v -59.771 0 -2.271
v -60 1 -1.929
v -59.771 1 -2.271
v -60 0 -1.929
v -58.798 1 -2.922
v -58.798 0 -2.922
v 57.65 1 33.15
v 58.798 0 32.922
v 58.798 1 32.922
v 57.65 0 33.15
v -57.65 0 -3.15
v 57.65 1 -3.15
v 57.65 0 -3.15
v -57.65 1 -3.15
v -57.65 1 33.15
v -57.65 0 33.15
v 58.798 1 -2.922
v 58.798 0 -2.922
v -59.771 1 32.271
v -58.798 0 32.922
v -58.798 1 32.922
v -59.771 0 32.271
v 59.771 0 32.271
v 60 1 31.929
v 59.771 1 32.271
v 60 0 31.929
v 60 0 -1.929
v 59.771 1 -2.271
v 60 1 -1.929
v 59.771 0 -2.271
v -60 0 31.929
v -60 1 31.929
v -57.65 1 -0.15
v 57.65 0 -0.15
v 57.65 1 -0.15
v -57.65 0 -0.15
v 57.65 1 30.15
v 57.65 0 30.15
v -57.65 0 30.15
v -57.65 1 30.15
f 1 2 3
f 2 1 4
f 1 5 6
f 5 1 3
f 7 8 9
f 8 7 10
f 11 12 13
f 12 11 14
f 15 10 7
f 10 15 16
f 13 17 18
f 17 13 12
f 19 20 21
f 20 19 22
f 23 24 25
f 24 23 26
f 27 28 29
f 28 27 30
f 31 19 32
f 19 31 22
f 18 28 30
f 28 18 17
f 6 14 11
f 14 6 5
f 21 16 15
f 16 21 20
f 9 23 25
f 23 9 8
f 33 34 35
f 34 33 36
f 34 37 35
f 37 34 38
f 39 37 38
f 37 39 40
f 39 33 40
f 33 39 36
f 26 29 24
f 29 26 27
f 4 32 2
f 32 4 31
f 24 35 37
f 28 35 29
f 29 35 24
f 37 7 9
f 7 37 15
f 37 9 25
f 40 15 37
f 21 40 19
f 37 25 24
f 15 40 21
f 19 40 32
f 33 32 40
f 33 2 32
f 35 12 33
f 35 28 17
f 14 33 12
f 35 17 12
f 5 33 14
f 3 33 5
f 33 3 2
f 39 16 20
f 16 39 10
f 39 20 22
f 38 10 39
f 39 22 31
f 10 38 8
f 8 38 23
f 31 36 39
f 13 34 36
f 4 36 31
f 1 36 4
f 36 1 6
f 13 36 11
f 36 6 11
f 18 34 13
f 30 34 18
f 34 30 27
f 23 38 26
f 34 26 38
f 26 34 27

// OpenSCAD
// file: xt.scad
e=.001;
$fn=16;

xt60_w=15.7;
xt60_h=8;
xt60f_d = 15.7;
xt60f_base_d = 8;
xt60_combined_d=24.1;
xt60_pitch=7;
xt60_chamfer=2.5;
xt60f_pin_d=5.7;
xt60m_pin_d=4.7;
xt60_pin_w=4.5;
xt60_hole_w=4.5;
xt60_corner=.5;

module xt_pins(width, height, pitch)
{
	for (p=[-pitch/2, pitch/2])
	translate([p,0,0])
	cylinder(h=height, r=width/2);
}

module xt_base(w, h, d, chamfer, corner, margin=0, e=0)
{
	w = w-2*corner;
	h = h-2*corner;
	r = corner+margin;
	translate([0,0,-e])
    linear_extrude(d+2*e)
	hull()
    for (p=[ [w/2,-h/2],
	         [-w/2+chamfer, -h/2],
	         [-w/2, -h/2+chamfer],
	         [-w/2, h/2-chamfer],
	         [-w/2+chamfer, h/2],
	         [w/2, h/2]
	])
	translate(p)
	circle(r);
}

module xt60_combined_shell_cutout(margin=0,f_margin=-1,m_margin=-1, e=0)
{
	b=1; 
	xt_base(xt60_w, xt60_h, xt60_combined_d, xt60_chamfer, xt60_corner, margin, e);
	if (f_margin > margin)
	hull()
	{
		xt_base(xt60_w, xt60_h, xt60f_base_d, xt60_chamfer, xt60_corner, f_margin, e);
		translate([0,0,xt60f_base_d])
		xt_base(xt60_w, xt60_h, f_margin-margin, xt60_chamfer, xt60_corner, margin, e);
	}
	if (m_margin > margin)
	hull()
	{
		translate([0,0,xt60f_base_d-(m_margin-margin)])
		xt_base(xt60_w, xt60_h, m_margin-margin, xt60_chamfer, xt60_corner, margin, e);
		translate([0,0,xt60f_base_d])
		xt_base(xt60_w, xt60_h, xt60_combined_d-xt60f_base_d, xt60_chamfer, xt60_corner, m_margin, e);
	}
}


module xt60_combined_cutout(margin=0,f_margin=-1,m_margin=-1, e=0)
{
	b=1; 
	xt60_combined_shell_cutout(margin,f_margin,m_margin, e);

	translate([0, 0, -xt60f_pin_d-margin])
	xt_pins(xt60_pin_w+margin*2, xt60f_pin_d+b+margin, xt60_pitch);

	translate([0, 0, xt60_combined_d-b])
	xt_pins(xt60_pin_w+margin*2, xt60m_pin_d+b+margin, xt60_pitch);
}

module xt60f_cutout(margin=0,f_margin=-1,m_margin=-1,e=0)
{
	translate([0,0,-xt60f_d])
	xt60_combined_cutout(margin,f_margin,m_margin,e);
}

module xt60f_shell_cutout(margin=0,f_margin=-1,m_margin=-1,e=0)
{
	translate([0,0,-xt60f_d])
	xt60_combined_shell_cutout(margin,f_margin,m_margin,e);
}

module xt60f()
{
	b=1;
	translate([0,0,-xt60f_d])
	{
		xt_base(xt60_w, xt60_h, xt60f_base_d, xt60_chamfer, xt60_corner, 0, e);

		translate([0,0,b])
		difference()
		{
			xt_base(xt60_w-2*xt60_corner, xt60_h-2*xt60_corner, xt60f_d-b, xt60_chamfer, xt60_corner, 0, e);
			xt_pins(xt60_hole_w, xt60f_d, xt60_pitch);

		}

		difference()
		{
			translate([0, 0, -xt60f_pin_d])
			xt_pins(xt60_pin_w, xt60f_pin_d+b, xt60_pitch);

			translate([0, 0, -xt60f_pin_d-b])
			xt_pins(xt60_pin_w*.8, xt60f_pin_d+b, xt60_pitch);
		}
	}
}

xt60f();
%xt60f_cutout(margin=.4,m_margin=1,e=e);
// file: power_shield.scad
use <utils.scad>
use <grid.scad>

use <mw_lrs.scad>
use <powerplug.scad>
use <xt.scad>

$fn=16;
e=.001;


margin=.15;
shield_thickness=1.;
shield_bottom=.6;

border_w=51;
border_h=31.2;
border_d=3.5;

w=47;
h=26.8;
d=22;
chamf=4;


flap_a_w=10;
flap_a_x=4;

flap_b_w=7;
flap_b_x=33;

flap_h=1;
flap_latch=.8;

corner=1;

module plug_keepout(margin=0, depth=39, e=0)
{
	$fn=16;

	d = .1+e;
	border_w = border_w-2*corner;
	border_h = border_h-2*corner;
	w = w-2*corner;
	h = h-2*corner;
	r = corner+margin;
	off = 16.5;

	color([.3,.3,.3])
	translate([corner,depth-.1,corner])
	rotate([90,0,0])
	{
		translate([(border_w-w)/2,0,-d])
		linear_extrude(d+e)
		hull()
		for (p=[ [off, 0],
		         [off, h],
		         [w-chamf, h],
		         [w, h-chamf],
		         [w, chamf],
		         [w- chamf, 0],
		])
		translate(p)
		circle(r);
	}
}

module plug_hull(margin, d, e=0)
{
	hull()
	{
		difference()
		{
		plug(margin=margin, extra_depth=5+shield_bottom);
		translate([-10,-10,-10])
		cube([100, 30, 100]);
		}
		plug_keepout(margin=margin, depth=d, e=0);
	}
	plug_keepout(margin=margin, depth=d, e=e);
	
}

inner_w=.8;

module power_shield()
{
color("red")
	union()
	{
	difference()
	{
		union()
		{
			plug_hull(margin=margin+shield_thickness, d=39);
		}
		union()
		{
		plug_hull(margin=margin, d=38, e=2);
		}
	}

	intersection()
	{
		plug_hull(margin=margin+shield_thickness/2, d=38.5, e=2);
		difference()
		{
			union()
			{
				translate([(border_w-w)/2+8.5-inner_w/2, 22, h/2-4-inner_w/2])
				cube([inner_w, 20, 20]);

				translate([(border_w-w)/2+8.5, 22, h/2-4-inner_w/2])
				cube([9., 17, inner_w]);

				translate([(border_w-w)/2+17.5-inner_w/2, 22, h/2-4-inner_w/2])
				cube([inner_w, 17, 10]);

				translate([(border_w-w)/2+15-inner_w/2, 38.4, h/2-4-inner_w/2])
				cube([2.5, shield_bottom, 10]);

				for (y=[0,h])
				for (x=[0,w-2])
				translate([(border_w-w)/2+x-5/sqrt(2)-inner_w/2, 22, y])
				rotate([0,45,0])
				cube([5,1,5]);

			}
			translate([(border_w-w)/2+6.5-inner_w/2, 21, h/2-6/2-inner_w/2])
			cube([5, 2, 5.5]);
		}
	}
}
}

power_shield();

//preview()
//plug();
// file: powerplug.scad
e=0.001;

border_w=51;
border_h=31.2;
border_d=3.5;

w=47;
h=26.8;
d=22;
chamf=4;


flap_a_w=10;
flap_a_x=4;

flap_b_w=7;
flap_b_x=33;

flap_h=1;
flap_latch=.8;

corner=1;

module plug(margin=0, extra_depth=0)
{
	$fn=16;

	d = d+extra_depth;
	border_w = border_w-2*corner;
	border_h = border_h-2*corner;
	w = w-2*corner;
	h = h-2*corner;
	r = corner+margin;

	color([.3,.3,.3])
	translate([corner,0,corner])
	rotate([90,0,0])
	{
		translate([0,(h-border_h)/2,0])
		linear_extrude(border_d+margin)
		hull()
		for(p=[ [0, 0],
		        [0, border_h],
		        [border_w, border_h],
		        [border_w, 0]
		])
		translate(p)
		circle(r);

		translate([(border_w-w)/2,0,-d])
		linear_extrude(d+e)
		hull()
		for (p=[ [0, 0],
		         [0, h],
		         [w-chamf, h],
		         [w, h-chamf],
		         [w, chamf],
		         [w- chamf, 0],
		])
		translate(p)
		circle(r);
	}
}

module plug_latch(margin=0)
{
	rotate([90,0,0])
	rotate([0,90,0])
	linear_extrude(9)
	{
		polygon([ [0, -1], [0, 1+margin], [9, margin]]);
	}
}

module plug_latches(margin=0)
{
	for (x=[9.5,32])
	for (y_flip=[-1, 1])
	translate([(border_w-w)/2+x,1.8, h/2])
	scale([1,1,y_flip])
	translate([0,0,h/2])
	plug_latch(margin);
}

plug();

plug_latches()

%plug(margin=.3);
// file: mw_lrs.scad
e=.001;
$fn=16;

mw_lrs_w=115;
mw_lrs_h=30;
mw_lrs_d=215;


mw_lrs_holes_pitch_d  = 150;
mw_lrs_holes_pitch_w  = 50;
mw_lrs_holes_height_h = 12.5;

mw_lrs_gap_h = 23;
mw_lrs_gap_d = 18.5;

mw_lrs_case_thickness = 1.6;

m4_thread = 4;

mw_lrs_screw_terminal_x=8.5;
mw_lrs_screw_terminal_w=88;
mw_lrs_screw_terminal_d=15;
mw_lrs_screw_terminal_h=15;
mw_lrs_screw_terminal_pitch = 9.5;
mw_lrs_screw_terminal_gap_w = 8;
mw_lrs_screw_terminal_gap_d = 14;
mw_lrs_screw_terminal_gap_z = 7;
mw_lrs_screw_terminal_gap_h = 6;

module mw_lrs_side_holes()
{
	translate( [0, 0, mw_lrs_holes_height_h] )
	for( r = [ 0, 180 ] )
	rotate( [0, r, 0] )
	for( y = [ (mw_lrs_d-mw_lrs_holes_pitch_d)/2, (mw_lrs_d+mw_lrs_holes_pitch_d)/2 ] )
	translate( [-mw_lrs_w/2, y, 0] )
	rotate( [0, 90, 0] )
	children();
}

module mw_lrs_bottom_holes()
{
	for( x = [ -mw_lrs_holes_pitch_w/2, mw_lrs_holes_pitch_w/2 ] )
	for( y = [ (mw_lrs_d-mw_lrs_holes_pitch_d)/2, (mw_lrs_d+mw_lrs_holes_pitch_d)/2 ] )
	translate( [x, y, 0] )
	children();
}

module mw_lrs_holes()
{
	mw_lrs_side_holes() children();
	mw_lrs_bottom_holes() children();
}

module mw_lrs_screw_terminal()
{
	colors = [
		"red", "red", "red",
		"black", "black", "black",
		"green", "blue", "brown",
	];
	b=1;
	translate([mw_lrs_screw_terminal_x, mw_lrs_case_thickness, mw_lrs_h-mw_lrs_gap_h-e])
	{
		difference()
		{
			translate([-mw_lrs_screw_terminal_w/2, 0, 0])
			cube([mw_lrs_screw_terminal_w, mw_lrs_screw_terminal_d, mw_lrs_screw_terminal_h+e]);
			for (i=[0:8])
			translate([(i-4)*9.5-mw_lrs_screw_terminal_gap_w/2, -b, mw_lrs_screw_terminal_gap_z])
			cube([mw_lrs_screw_terminal_gap_w, mw_lrs_screw_terminal_gap_d+b, mw_lrs_screw_terminal_gap_h]);
		}

		for (i=[0:8])
		translate([(i-4)*9.5-mw_lrs_screw_terminal_gap_w/2, -0, mw_lrs_screw_terminal_h])
		color(colors[i])
		cube([mw_lrs_screw_terminal_gap_w,mw_lrs_screw_terminal_gap_d,.1]);

	}
}

module mw_lrs_vents()
{
	b=1;
	hole=4;
	for (y = [36, 44, 52])
	for (i = [-1, 1])
	hull()
	{
		translate([i*(19/2+hole/2), y, mw_lrs_h-mw_lrs_case_thickness-b])
			cylinder(mw_lrs_case_thickness+2*b, r=hole/2);

		translate([i*(19/2+hole/2+33), y, mw_lrs_h-mw_lrs_case_thickness-b])
			cylinder(mw_lrs_case_thickness+2*b, r=hole/2);
	}

	translate([-mw_lrs_w/2+36.7, mw_lrs_d-47.45,mw_lrs_h-mw_lrs_case_thickness-b])
		cylinder(mw_lrs_case_thickness+2*b, r=50/2);
}

module mw_lrs_vents_keepout(h, margin=0)
{
	b=1;
	hole=4;
	hull()
	for (y = [36, 44, 52])
	for (i = [-1, 1])
	{
		translate([i*(19/2+hole/2), y, mw_lrs_h-b])
			cylinder(h+b, r=hole/2+margin);

		translate([i*(19/2+hole/2+33), y, mw_lrs_h-b])
			cylinder(h+b, r=hole/2+margin);
	}

	translate([-mw_lrs_w/2+36.7, mw_lrs_d-47.45,mw_lrs_h-b])
		cylinder(h+b, r=50/2);
}

module mw_lrs()
{
	b=1; 

	union()
	{
		color([.75,.75,.75])
		difference()
		{

			translate([-mw_lrs_w/2,0,0])
			cube([mw_lrs_w, mw_lrs_d, mw_lrs_h]);

			union()
			{
				translate([-mw_lrs_w/2+mw_lrs_case_thickness, -b, mw_lrs_h-mw_lrs_gap_h] )
				cube( [ mw_lrs_w-2*mw_lrs_case_thickness, b+mw_lrs_gap_d, mw_lrs_gap_h+b] );

				translate([-mw_lrs_w/2+mw_lrs_case_thickness, mw_lrs_gap_d-e, mw_lrs_h-mw_lrs_gap_h] )
				cube( [ mw_lrs_w-2*mw_lrs_case_thickness, mw_lrs_d-mw_lrs_gap_d+e-mw_lrs_case_thickness, mw_lrs_gap_h-mw_lrs_case_thickness] );

				mw_lrs_vents();

				mw_lrs_holes()
				{
					translate([0,0,-e])
					cylinder(h=5+e, r=m4_thread/2);
				}
			}
		}
		color([.1, .3, .1])
		translate([-mw_lrs_w/2+mw_lrs_case_thickness, 0, mw_lrs_h-mw_lrs_gap_h-e])
		cube([mw_lrs_w-2*mw_lrs_case_thickness, mw_lrs_d-mw_lrs_case_thickness, e+.1]);
		mw_lrs_screw_terminal();
	}
}

module mw_lrs_keepout(margin=0, e=0)
{
	b=1; 

	w=mw_lrs_w+margin*2;
	d=mw_lrs_d+margin*2;
	h=mw_lrs_h+margin*2;

	translate([-w/2,-margin,-margin])
	cube([w, d, h]);
}

mw_lrs();
%mw_lrs_keepout(margin=.4);

module m4_hole(h)
{
	translate([0,0,-h])
	cylinder(h=h+e, r=m4_thread/2);
}

%mw_lrs_holes()
m4_hole(10);
// file: grid.scad
module bars(width, height, n, pitch, bar_width)
{
	for (i=[0:n-1])
		translate([0, (i-(n-1)/2)*pitch-bar_width/2, 0])
			cube([width, bar_width, height]);
}

module grid(width, depth, height, n_rows, n_cols, pitch=10, x_pitch=-1, y_pitch=-1, bar_width=1, x_bar_width=-1, y_bar_width=-1)
{
	x_pitch = x_pitch > 0 ? x_pitch : pitch;
	y_pitch = y_pitch > 0 ? y_pitch : pitch;
	x_bar_width = x_bar_width > 0 ? x_bar_width : bar_width;
	y_bar_width = y_bar_width > 0 ? y_bar_width : bar_width;

	translate( [0, depth/2, 0] )
		bars( width, height, n_rows, y_pitch, y_bar_width );
	translate( [width/2, 0, 0] )
		rotate([0,0,90])
			bars( depth, height, n_cols, x_pitch, x_bar_width) ;
}

grid(100, 50, 1, 4, 8);
// file: utils.scad
module xz_toward_y()
{
	scale([1, 1, -1])
	rotate([-90,0,0])
	children();
}

module anchor(dim, anchor=[0,0,0])
{
	translate([-(1+anchor.x)*dim.x/2, -(1+anchor.y)*dim.y/2, -(1+anchor.z)*dim.z/2])
	children();
}

module block(dim, anchor=[0,0,0])
{
	anchor(dim, anchor)
	cube(dim);
}

module rounded_block_z(dim, anchor=[0,0,0], r=0)
{
	anchor(dim, anchor)
	linear_extrude(dim.z)
	hull()
	for (p=[ [r,r], [dim.x-r, r], [dim.x-r, dim.y-r], [r, dim.y-r] ] )
	translate(p)
	circle(r);
}

module rounded_block_y(dim, anchor=[0,0,0], r=0)
{
	anchor(dim, anchor)
	xz_toward_y()
	linear_extrude(dim.y)
	hull()
	for (p=[ [r,r], [dim.x-r, r], [dim.x-r, dim.z-r], [r, dim.z-r] ] )
	translate(p)
	circle(r);
}

module chamfer_block_y(dim, anchor=[0,0,0], r=0)
{
	anchor(dim, anchor)
	hull()
	{
		translate([r,0,0])
		cube([dim.x-r*2, dim.y, dim.z]);

		translate([0,0,r])
		cube([dim.x, dim.y, dim.z-r*2]);
	}
}

module chamfer_block_z(dim, anchor=[0,0,0], r=0)
{
	anchor(dim, anchor)
	hull()
	{
		translate([r,0,0])
		cube([dim.x-r*2, dim.y, dim.z]);

		translate([0,r,0])
		cube([dim.x, dim.y-r*2, dim.z]);
	}
}

module chamfer_block(dim, anchor=[0,0,0], r=0)
{
	anchor(dim, anchor)
	hull()
	{
		translate([r,r,0])
		cube([dim.x-r*2, dim.y-r*2, dim.z]);

		translate([r,0,r])
		cube([dim.x-r*2, dim.y, dim.z-r*2]);

		translate([0,r,r])
		cube([dim.x, dim.y-r*2, dim.z-r*2]);
	}
}

module at_grid(c,r,pitch,anchor=[0,0,0])
{
	dim=[(c-1)*pitch,(r-1)*pitch,1];
	a=[anchor[0],anchor[1],-1];
	anchor(dim,a)
	for(x=[0:c-1])
	for(y=[0:r-1])
	translate([x*pitch,y*pitch,0])
	children();
}

module ngon_outer(n,h,r)
{
	cylinder(h,r=r, $fn=n);
}

module ngon_inner(n,h,r)
{
	a=360/n/2;
	r_cyl = r/cos(a);
	rotate([0,0,a])
	cylinder(h,r=r_cyl, $fn=n);
}


module ngon_cone_outer(n,h,r1,r2)
{
	cylinder(h,r1=r1,r2=r2, $fn=n);
}

module ngon_cone_inner(n,h,r1,r2)
{
	a=360/n/2;
	r1_cyl = r1/cos(a);
	r2_cyl = r2/cos(a);
	rotate([0,0,a])
	cylinder(h,r1=r1_cyl,r2=r2_cyl, $fn=n);
}

module preview()
{
	if ($preview)
	children();
}
// file: cover.scad
use <utils.scad>
use <grid.scad>

use <mw_lrs.scad>
use <powerplug.scad>
use <power_shield.scad>
use <xt.scad>

$fn=16;
e=.001;

depth=40;

xt60_loc = [ [-47,-depth, 15], [-27,-depth, 15], [-7,-depth, 15] ];
plug_loc = [5,-depth, 1.5];

margin = 0.15;

xt60_margin = 0.25;
xt60m_margin = 1;

xt60_thickness = 1.5;
plug_thickness = 2;

case_w_inner = 115+2*margin;
case_h_inner = 30+2*margin;
case_thickness = 3;
case_w = case_w_inner + 2*case_thickness;
case_d = depth + 40;
case_h = case_h_inner + 2*case_thickness;

case_dim = [case_w, case_d, case_h];
case_dim_inner = [case_w_inner, case_d, case_h_inner];
case_dim_inside = [(case_w_inner+case_w)/2, case_d, (case_h_inner+case_h)/2];

bump_corner=(case_thickness+margin)*2.5;


front = [0,-1, 0];
bottom_front = [0,-1,-1];

grid_rows = 3;
grid_cols = 11;
grid_pitch = 10;
grid_thickness = .8;
grid_depth=12;
grid_xoff =-2;

screw_thread=3;
screw_hole_r=(screw_thread*.9)/2;
screw_hole_border=2;

mw_lrs_gap_d = 18.5;

preview()
{
	mw_lrs();

	for ( p = xt60_loc )
	translate(p)
	rotate([90,90,0])
	xt60f();

	translate(plug_loc)
	plug();

	translate(plug_loc)
	power_shield();
}

module cutout()
{
	mw_lrs_keepout(margin=margin);

	for ( p = xt60_loc )
	translate(p)
	translate([0,0,0])
	rotate([90,90,0])
	xt60f_cutout(margin=xt60_margin,m_margin=xt60m_margin,e=e);

	translate(plug_loc)
	{
	plug(margin=margin, , extra_depth=-2);
	plug_latches(margin=margin);
	}

	mw_lrs_holes()
	m4_hole(10);

	mw_lrs_vents_keepout(h=10, margin=1);
}

module shell()
{
	difference()
	{
		translate([0, -depth, -case_thickness-margin])
		rounded_block_y(case_dim, bottom_front, r=case_thickness);

		translate([0, -depth+case_thickness, -margin])
		chamfer_block([case_w_inner, case_d, case_h_inner], bottom_front, r=case_thickness);
	}
}

module round_corner(w)
{
	difference()
	{
		rotate([90,0,0])
		cylinder(w, r1=w, r2=0);
		union()
		{
			translate([-w-e,-w,-w])
			cube([w,w*2,w*2]);

			translate([-w,-w,-w-e])
			cube([w*2,w*2,w]);
		}
	}
}


module bump_corner(w)
{
	round_corner(w, $fn=4);
}

module front_grid()
{
	translate([0, -depth+e,-case_thickness/2])
	xz_toward_y()
	anchor(case_dim_inside, bottom_front)
	grid(case_dim_inside.x, case_dim_inside.z, case_thickness+grid_depth-e, grid_rows, grid_cols, pitch=grid_pitch, bar_width=grid_thickness, x_off=grid_xoff, y_off=0);
}

module at_panel_screws()
{
	for (x=[ -12, -42 ])
	for (z=[ 5, 25 ])
	translate([x,-depth, z])
	children();
}


module cover()
{
	difference()
	{
		union()
		{
			shell();
	
			intersection()
			{
				union()
				{
					front_grid();
					translate(plug_loc)
					plug(margin=margin+plug_thickness, extra_depth=-2);
	
					for ( p = xt60_loc )
					translate(p)
					rotate([90,90,0])
					xt60f_shell_cutout(margin=  xt60_margin+xt60_thickness,
					                 m_margin=xt60m_margin+xt60_thickness);

					at_panel_screws()
					translate([0,-e, 0])
					xz_toward_y()
					linear_extrude(15.7+e)
					circle(screw_hole_r+screw_hole_border);

				}
				translate([0, -depth+e, case_h_inner/2])
				block(case_dim_inside, front);
			}

			translate([0,-margin,case_h_inner/2-margin])
			for (x=[1, -1])
			for (z=[1, -1])
			scale([x, 1, z])
			translate([-case_w_inner/2, 0,-case_h_inner/2])
			bump_corner(bump_corner);
		}
		union()
		{
			cutout();

			at_panel_screws()
			translate([0,case_thickness+e, 0])
			xz_toward_y()
			linear_extrude(15.7)
			circle(screw_hole_r);
		}
	}
}

#cover();
// main file
use <cover.scad>

color("red")
intersection()
{
	translate([-60,0,-10])
	cube([120, 1, 50]);
	cover();
}
